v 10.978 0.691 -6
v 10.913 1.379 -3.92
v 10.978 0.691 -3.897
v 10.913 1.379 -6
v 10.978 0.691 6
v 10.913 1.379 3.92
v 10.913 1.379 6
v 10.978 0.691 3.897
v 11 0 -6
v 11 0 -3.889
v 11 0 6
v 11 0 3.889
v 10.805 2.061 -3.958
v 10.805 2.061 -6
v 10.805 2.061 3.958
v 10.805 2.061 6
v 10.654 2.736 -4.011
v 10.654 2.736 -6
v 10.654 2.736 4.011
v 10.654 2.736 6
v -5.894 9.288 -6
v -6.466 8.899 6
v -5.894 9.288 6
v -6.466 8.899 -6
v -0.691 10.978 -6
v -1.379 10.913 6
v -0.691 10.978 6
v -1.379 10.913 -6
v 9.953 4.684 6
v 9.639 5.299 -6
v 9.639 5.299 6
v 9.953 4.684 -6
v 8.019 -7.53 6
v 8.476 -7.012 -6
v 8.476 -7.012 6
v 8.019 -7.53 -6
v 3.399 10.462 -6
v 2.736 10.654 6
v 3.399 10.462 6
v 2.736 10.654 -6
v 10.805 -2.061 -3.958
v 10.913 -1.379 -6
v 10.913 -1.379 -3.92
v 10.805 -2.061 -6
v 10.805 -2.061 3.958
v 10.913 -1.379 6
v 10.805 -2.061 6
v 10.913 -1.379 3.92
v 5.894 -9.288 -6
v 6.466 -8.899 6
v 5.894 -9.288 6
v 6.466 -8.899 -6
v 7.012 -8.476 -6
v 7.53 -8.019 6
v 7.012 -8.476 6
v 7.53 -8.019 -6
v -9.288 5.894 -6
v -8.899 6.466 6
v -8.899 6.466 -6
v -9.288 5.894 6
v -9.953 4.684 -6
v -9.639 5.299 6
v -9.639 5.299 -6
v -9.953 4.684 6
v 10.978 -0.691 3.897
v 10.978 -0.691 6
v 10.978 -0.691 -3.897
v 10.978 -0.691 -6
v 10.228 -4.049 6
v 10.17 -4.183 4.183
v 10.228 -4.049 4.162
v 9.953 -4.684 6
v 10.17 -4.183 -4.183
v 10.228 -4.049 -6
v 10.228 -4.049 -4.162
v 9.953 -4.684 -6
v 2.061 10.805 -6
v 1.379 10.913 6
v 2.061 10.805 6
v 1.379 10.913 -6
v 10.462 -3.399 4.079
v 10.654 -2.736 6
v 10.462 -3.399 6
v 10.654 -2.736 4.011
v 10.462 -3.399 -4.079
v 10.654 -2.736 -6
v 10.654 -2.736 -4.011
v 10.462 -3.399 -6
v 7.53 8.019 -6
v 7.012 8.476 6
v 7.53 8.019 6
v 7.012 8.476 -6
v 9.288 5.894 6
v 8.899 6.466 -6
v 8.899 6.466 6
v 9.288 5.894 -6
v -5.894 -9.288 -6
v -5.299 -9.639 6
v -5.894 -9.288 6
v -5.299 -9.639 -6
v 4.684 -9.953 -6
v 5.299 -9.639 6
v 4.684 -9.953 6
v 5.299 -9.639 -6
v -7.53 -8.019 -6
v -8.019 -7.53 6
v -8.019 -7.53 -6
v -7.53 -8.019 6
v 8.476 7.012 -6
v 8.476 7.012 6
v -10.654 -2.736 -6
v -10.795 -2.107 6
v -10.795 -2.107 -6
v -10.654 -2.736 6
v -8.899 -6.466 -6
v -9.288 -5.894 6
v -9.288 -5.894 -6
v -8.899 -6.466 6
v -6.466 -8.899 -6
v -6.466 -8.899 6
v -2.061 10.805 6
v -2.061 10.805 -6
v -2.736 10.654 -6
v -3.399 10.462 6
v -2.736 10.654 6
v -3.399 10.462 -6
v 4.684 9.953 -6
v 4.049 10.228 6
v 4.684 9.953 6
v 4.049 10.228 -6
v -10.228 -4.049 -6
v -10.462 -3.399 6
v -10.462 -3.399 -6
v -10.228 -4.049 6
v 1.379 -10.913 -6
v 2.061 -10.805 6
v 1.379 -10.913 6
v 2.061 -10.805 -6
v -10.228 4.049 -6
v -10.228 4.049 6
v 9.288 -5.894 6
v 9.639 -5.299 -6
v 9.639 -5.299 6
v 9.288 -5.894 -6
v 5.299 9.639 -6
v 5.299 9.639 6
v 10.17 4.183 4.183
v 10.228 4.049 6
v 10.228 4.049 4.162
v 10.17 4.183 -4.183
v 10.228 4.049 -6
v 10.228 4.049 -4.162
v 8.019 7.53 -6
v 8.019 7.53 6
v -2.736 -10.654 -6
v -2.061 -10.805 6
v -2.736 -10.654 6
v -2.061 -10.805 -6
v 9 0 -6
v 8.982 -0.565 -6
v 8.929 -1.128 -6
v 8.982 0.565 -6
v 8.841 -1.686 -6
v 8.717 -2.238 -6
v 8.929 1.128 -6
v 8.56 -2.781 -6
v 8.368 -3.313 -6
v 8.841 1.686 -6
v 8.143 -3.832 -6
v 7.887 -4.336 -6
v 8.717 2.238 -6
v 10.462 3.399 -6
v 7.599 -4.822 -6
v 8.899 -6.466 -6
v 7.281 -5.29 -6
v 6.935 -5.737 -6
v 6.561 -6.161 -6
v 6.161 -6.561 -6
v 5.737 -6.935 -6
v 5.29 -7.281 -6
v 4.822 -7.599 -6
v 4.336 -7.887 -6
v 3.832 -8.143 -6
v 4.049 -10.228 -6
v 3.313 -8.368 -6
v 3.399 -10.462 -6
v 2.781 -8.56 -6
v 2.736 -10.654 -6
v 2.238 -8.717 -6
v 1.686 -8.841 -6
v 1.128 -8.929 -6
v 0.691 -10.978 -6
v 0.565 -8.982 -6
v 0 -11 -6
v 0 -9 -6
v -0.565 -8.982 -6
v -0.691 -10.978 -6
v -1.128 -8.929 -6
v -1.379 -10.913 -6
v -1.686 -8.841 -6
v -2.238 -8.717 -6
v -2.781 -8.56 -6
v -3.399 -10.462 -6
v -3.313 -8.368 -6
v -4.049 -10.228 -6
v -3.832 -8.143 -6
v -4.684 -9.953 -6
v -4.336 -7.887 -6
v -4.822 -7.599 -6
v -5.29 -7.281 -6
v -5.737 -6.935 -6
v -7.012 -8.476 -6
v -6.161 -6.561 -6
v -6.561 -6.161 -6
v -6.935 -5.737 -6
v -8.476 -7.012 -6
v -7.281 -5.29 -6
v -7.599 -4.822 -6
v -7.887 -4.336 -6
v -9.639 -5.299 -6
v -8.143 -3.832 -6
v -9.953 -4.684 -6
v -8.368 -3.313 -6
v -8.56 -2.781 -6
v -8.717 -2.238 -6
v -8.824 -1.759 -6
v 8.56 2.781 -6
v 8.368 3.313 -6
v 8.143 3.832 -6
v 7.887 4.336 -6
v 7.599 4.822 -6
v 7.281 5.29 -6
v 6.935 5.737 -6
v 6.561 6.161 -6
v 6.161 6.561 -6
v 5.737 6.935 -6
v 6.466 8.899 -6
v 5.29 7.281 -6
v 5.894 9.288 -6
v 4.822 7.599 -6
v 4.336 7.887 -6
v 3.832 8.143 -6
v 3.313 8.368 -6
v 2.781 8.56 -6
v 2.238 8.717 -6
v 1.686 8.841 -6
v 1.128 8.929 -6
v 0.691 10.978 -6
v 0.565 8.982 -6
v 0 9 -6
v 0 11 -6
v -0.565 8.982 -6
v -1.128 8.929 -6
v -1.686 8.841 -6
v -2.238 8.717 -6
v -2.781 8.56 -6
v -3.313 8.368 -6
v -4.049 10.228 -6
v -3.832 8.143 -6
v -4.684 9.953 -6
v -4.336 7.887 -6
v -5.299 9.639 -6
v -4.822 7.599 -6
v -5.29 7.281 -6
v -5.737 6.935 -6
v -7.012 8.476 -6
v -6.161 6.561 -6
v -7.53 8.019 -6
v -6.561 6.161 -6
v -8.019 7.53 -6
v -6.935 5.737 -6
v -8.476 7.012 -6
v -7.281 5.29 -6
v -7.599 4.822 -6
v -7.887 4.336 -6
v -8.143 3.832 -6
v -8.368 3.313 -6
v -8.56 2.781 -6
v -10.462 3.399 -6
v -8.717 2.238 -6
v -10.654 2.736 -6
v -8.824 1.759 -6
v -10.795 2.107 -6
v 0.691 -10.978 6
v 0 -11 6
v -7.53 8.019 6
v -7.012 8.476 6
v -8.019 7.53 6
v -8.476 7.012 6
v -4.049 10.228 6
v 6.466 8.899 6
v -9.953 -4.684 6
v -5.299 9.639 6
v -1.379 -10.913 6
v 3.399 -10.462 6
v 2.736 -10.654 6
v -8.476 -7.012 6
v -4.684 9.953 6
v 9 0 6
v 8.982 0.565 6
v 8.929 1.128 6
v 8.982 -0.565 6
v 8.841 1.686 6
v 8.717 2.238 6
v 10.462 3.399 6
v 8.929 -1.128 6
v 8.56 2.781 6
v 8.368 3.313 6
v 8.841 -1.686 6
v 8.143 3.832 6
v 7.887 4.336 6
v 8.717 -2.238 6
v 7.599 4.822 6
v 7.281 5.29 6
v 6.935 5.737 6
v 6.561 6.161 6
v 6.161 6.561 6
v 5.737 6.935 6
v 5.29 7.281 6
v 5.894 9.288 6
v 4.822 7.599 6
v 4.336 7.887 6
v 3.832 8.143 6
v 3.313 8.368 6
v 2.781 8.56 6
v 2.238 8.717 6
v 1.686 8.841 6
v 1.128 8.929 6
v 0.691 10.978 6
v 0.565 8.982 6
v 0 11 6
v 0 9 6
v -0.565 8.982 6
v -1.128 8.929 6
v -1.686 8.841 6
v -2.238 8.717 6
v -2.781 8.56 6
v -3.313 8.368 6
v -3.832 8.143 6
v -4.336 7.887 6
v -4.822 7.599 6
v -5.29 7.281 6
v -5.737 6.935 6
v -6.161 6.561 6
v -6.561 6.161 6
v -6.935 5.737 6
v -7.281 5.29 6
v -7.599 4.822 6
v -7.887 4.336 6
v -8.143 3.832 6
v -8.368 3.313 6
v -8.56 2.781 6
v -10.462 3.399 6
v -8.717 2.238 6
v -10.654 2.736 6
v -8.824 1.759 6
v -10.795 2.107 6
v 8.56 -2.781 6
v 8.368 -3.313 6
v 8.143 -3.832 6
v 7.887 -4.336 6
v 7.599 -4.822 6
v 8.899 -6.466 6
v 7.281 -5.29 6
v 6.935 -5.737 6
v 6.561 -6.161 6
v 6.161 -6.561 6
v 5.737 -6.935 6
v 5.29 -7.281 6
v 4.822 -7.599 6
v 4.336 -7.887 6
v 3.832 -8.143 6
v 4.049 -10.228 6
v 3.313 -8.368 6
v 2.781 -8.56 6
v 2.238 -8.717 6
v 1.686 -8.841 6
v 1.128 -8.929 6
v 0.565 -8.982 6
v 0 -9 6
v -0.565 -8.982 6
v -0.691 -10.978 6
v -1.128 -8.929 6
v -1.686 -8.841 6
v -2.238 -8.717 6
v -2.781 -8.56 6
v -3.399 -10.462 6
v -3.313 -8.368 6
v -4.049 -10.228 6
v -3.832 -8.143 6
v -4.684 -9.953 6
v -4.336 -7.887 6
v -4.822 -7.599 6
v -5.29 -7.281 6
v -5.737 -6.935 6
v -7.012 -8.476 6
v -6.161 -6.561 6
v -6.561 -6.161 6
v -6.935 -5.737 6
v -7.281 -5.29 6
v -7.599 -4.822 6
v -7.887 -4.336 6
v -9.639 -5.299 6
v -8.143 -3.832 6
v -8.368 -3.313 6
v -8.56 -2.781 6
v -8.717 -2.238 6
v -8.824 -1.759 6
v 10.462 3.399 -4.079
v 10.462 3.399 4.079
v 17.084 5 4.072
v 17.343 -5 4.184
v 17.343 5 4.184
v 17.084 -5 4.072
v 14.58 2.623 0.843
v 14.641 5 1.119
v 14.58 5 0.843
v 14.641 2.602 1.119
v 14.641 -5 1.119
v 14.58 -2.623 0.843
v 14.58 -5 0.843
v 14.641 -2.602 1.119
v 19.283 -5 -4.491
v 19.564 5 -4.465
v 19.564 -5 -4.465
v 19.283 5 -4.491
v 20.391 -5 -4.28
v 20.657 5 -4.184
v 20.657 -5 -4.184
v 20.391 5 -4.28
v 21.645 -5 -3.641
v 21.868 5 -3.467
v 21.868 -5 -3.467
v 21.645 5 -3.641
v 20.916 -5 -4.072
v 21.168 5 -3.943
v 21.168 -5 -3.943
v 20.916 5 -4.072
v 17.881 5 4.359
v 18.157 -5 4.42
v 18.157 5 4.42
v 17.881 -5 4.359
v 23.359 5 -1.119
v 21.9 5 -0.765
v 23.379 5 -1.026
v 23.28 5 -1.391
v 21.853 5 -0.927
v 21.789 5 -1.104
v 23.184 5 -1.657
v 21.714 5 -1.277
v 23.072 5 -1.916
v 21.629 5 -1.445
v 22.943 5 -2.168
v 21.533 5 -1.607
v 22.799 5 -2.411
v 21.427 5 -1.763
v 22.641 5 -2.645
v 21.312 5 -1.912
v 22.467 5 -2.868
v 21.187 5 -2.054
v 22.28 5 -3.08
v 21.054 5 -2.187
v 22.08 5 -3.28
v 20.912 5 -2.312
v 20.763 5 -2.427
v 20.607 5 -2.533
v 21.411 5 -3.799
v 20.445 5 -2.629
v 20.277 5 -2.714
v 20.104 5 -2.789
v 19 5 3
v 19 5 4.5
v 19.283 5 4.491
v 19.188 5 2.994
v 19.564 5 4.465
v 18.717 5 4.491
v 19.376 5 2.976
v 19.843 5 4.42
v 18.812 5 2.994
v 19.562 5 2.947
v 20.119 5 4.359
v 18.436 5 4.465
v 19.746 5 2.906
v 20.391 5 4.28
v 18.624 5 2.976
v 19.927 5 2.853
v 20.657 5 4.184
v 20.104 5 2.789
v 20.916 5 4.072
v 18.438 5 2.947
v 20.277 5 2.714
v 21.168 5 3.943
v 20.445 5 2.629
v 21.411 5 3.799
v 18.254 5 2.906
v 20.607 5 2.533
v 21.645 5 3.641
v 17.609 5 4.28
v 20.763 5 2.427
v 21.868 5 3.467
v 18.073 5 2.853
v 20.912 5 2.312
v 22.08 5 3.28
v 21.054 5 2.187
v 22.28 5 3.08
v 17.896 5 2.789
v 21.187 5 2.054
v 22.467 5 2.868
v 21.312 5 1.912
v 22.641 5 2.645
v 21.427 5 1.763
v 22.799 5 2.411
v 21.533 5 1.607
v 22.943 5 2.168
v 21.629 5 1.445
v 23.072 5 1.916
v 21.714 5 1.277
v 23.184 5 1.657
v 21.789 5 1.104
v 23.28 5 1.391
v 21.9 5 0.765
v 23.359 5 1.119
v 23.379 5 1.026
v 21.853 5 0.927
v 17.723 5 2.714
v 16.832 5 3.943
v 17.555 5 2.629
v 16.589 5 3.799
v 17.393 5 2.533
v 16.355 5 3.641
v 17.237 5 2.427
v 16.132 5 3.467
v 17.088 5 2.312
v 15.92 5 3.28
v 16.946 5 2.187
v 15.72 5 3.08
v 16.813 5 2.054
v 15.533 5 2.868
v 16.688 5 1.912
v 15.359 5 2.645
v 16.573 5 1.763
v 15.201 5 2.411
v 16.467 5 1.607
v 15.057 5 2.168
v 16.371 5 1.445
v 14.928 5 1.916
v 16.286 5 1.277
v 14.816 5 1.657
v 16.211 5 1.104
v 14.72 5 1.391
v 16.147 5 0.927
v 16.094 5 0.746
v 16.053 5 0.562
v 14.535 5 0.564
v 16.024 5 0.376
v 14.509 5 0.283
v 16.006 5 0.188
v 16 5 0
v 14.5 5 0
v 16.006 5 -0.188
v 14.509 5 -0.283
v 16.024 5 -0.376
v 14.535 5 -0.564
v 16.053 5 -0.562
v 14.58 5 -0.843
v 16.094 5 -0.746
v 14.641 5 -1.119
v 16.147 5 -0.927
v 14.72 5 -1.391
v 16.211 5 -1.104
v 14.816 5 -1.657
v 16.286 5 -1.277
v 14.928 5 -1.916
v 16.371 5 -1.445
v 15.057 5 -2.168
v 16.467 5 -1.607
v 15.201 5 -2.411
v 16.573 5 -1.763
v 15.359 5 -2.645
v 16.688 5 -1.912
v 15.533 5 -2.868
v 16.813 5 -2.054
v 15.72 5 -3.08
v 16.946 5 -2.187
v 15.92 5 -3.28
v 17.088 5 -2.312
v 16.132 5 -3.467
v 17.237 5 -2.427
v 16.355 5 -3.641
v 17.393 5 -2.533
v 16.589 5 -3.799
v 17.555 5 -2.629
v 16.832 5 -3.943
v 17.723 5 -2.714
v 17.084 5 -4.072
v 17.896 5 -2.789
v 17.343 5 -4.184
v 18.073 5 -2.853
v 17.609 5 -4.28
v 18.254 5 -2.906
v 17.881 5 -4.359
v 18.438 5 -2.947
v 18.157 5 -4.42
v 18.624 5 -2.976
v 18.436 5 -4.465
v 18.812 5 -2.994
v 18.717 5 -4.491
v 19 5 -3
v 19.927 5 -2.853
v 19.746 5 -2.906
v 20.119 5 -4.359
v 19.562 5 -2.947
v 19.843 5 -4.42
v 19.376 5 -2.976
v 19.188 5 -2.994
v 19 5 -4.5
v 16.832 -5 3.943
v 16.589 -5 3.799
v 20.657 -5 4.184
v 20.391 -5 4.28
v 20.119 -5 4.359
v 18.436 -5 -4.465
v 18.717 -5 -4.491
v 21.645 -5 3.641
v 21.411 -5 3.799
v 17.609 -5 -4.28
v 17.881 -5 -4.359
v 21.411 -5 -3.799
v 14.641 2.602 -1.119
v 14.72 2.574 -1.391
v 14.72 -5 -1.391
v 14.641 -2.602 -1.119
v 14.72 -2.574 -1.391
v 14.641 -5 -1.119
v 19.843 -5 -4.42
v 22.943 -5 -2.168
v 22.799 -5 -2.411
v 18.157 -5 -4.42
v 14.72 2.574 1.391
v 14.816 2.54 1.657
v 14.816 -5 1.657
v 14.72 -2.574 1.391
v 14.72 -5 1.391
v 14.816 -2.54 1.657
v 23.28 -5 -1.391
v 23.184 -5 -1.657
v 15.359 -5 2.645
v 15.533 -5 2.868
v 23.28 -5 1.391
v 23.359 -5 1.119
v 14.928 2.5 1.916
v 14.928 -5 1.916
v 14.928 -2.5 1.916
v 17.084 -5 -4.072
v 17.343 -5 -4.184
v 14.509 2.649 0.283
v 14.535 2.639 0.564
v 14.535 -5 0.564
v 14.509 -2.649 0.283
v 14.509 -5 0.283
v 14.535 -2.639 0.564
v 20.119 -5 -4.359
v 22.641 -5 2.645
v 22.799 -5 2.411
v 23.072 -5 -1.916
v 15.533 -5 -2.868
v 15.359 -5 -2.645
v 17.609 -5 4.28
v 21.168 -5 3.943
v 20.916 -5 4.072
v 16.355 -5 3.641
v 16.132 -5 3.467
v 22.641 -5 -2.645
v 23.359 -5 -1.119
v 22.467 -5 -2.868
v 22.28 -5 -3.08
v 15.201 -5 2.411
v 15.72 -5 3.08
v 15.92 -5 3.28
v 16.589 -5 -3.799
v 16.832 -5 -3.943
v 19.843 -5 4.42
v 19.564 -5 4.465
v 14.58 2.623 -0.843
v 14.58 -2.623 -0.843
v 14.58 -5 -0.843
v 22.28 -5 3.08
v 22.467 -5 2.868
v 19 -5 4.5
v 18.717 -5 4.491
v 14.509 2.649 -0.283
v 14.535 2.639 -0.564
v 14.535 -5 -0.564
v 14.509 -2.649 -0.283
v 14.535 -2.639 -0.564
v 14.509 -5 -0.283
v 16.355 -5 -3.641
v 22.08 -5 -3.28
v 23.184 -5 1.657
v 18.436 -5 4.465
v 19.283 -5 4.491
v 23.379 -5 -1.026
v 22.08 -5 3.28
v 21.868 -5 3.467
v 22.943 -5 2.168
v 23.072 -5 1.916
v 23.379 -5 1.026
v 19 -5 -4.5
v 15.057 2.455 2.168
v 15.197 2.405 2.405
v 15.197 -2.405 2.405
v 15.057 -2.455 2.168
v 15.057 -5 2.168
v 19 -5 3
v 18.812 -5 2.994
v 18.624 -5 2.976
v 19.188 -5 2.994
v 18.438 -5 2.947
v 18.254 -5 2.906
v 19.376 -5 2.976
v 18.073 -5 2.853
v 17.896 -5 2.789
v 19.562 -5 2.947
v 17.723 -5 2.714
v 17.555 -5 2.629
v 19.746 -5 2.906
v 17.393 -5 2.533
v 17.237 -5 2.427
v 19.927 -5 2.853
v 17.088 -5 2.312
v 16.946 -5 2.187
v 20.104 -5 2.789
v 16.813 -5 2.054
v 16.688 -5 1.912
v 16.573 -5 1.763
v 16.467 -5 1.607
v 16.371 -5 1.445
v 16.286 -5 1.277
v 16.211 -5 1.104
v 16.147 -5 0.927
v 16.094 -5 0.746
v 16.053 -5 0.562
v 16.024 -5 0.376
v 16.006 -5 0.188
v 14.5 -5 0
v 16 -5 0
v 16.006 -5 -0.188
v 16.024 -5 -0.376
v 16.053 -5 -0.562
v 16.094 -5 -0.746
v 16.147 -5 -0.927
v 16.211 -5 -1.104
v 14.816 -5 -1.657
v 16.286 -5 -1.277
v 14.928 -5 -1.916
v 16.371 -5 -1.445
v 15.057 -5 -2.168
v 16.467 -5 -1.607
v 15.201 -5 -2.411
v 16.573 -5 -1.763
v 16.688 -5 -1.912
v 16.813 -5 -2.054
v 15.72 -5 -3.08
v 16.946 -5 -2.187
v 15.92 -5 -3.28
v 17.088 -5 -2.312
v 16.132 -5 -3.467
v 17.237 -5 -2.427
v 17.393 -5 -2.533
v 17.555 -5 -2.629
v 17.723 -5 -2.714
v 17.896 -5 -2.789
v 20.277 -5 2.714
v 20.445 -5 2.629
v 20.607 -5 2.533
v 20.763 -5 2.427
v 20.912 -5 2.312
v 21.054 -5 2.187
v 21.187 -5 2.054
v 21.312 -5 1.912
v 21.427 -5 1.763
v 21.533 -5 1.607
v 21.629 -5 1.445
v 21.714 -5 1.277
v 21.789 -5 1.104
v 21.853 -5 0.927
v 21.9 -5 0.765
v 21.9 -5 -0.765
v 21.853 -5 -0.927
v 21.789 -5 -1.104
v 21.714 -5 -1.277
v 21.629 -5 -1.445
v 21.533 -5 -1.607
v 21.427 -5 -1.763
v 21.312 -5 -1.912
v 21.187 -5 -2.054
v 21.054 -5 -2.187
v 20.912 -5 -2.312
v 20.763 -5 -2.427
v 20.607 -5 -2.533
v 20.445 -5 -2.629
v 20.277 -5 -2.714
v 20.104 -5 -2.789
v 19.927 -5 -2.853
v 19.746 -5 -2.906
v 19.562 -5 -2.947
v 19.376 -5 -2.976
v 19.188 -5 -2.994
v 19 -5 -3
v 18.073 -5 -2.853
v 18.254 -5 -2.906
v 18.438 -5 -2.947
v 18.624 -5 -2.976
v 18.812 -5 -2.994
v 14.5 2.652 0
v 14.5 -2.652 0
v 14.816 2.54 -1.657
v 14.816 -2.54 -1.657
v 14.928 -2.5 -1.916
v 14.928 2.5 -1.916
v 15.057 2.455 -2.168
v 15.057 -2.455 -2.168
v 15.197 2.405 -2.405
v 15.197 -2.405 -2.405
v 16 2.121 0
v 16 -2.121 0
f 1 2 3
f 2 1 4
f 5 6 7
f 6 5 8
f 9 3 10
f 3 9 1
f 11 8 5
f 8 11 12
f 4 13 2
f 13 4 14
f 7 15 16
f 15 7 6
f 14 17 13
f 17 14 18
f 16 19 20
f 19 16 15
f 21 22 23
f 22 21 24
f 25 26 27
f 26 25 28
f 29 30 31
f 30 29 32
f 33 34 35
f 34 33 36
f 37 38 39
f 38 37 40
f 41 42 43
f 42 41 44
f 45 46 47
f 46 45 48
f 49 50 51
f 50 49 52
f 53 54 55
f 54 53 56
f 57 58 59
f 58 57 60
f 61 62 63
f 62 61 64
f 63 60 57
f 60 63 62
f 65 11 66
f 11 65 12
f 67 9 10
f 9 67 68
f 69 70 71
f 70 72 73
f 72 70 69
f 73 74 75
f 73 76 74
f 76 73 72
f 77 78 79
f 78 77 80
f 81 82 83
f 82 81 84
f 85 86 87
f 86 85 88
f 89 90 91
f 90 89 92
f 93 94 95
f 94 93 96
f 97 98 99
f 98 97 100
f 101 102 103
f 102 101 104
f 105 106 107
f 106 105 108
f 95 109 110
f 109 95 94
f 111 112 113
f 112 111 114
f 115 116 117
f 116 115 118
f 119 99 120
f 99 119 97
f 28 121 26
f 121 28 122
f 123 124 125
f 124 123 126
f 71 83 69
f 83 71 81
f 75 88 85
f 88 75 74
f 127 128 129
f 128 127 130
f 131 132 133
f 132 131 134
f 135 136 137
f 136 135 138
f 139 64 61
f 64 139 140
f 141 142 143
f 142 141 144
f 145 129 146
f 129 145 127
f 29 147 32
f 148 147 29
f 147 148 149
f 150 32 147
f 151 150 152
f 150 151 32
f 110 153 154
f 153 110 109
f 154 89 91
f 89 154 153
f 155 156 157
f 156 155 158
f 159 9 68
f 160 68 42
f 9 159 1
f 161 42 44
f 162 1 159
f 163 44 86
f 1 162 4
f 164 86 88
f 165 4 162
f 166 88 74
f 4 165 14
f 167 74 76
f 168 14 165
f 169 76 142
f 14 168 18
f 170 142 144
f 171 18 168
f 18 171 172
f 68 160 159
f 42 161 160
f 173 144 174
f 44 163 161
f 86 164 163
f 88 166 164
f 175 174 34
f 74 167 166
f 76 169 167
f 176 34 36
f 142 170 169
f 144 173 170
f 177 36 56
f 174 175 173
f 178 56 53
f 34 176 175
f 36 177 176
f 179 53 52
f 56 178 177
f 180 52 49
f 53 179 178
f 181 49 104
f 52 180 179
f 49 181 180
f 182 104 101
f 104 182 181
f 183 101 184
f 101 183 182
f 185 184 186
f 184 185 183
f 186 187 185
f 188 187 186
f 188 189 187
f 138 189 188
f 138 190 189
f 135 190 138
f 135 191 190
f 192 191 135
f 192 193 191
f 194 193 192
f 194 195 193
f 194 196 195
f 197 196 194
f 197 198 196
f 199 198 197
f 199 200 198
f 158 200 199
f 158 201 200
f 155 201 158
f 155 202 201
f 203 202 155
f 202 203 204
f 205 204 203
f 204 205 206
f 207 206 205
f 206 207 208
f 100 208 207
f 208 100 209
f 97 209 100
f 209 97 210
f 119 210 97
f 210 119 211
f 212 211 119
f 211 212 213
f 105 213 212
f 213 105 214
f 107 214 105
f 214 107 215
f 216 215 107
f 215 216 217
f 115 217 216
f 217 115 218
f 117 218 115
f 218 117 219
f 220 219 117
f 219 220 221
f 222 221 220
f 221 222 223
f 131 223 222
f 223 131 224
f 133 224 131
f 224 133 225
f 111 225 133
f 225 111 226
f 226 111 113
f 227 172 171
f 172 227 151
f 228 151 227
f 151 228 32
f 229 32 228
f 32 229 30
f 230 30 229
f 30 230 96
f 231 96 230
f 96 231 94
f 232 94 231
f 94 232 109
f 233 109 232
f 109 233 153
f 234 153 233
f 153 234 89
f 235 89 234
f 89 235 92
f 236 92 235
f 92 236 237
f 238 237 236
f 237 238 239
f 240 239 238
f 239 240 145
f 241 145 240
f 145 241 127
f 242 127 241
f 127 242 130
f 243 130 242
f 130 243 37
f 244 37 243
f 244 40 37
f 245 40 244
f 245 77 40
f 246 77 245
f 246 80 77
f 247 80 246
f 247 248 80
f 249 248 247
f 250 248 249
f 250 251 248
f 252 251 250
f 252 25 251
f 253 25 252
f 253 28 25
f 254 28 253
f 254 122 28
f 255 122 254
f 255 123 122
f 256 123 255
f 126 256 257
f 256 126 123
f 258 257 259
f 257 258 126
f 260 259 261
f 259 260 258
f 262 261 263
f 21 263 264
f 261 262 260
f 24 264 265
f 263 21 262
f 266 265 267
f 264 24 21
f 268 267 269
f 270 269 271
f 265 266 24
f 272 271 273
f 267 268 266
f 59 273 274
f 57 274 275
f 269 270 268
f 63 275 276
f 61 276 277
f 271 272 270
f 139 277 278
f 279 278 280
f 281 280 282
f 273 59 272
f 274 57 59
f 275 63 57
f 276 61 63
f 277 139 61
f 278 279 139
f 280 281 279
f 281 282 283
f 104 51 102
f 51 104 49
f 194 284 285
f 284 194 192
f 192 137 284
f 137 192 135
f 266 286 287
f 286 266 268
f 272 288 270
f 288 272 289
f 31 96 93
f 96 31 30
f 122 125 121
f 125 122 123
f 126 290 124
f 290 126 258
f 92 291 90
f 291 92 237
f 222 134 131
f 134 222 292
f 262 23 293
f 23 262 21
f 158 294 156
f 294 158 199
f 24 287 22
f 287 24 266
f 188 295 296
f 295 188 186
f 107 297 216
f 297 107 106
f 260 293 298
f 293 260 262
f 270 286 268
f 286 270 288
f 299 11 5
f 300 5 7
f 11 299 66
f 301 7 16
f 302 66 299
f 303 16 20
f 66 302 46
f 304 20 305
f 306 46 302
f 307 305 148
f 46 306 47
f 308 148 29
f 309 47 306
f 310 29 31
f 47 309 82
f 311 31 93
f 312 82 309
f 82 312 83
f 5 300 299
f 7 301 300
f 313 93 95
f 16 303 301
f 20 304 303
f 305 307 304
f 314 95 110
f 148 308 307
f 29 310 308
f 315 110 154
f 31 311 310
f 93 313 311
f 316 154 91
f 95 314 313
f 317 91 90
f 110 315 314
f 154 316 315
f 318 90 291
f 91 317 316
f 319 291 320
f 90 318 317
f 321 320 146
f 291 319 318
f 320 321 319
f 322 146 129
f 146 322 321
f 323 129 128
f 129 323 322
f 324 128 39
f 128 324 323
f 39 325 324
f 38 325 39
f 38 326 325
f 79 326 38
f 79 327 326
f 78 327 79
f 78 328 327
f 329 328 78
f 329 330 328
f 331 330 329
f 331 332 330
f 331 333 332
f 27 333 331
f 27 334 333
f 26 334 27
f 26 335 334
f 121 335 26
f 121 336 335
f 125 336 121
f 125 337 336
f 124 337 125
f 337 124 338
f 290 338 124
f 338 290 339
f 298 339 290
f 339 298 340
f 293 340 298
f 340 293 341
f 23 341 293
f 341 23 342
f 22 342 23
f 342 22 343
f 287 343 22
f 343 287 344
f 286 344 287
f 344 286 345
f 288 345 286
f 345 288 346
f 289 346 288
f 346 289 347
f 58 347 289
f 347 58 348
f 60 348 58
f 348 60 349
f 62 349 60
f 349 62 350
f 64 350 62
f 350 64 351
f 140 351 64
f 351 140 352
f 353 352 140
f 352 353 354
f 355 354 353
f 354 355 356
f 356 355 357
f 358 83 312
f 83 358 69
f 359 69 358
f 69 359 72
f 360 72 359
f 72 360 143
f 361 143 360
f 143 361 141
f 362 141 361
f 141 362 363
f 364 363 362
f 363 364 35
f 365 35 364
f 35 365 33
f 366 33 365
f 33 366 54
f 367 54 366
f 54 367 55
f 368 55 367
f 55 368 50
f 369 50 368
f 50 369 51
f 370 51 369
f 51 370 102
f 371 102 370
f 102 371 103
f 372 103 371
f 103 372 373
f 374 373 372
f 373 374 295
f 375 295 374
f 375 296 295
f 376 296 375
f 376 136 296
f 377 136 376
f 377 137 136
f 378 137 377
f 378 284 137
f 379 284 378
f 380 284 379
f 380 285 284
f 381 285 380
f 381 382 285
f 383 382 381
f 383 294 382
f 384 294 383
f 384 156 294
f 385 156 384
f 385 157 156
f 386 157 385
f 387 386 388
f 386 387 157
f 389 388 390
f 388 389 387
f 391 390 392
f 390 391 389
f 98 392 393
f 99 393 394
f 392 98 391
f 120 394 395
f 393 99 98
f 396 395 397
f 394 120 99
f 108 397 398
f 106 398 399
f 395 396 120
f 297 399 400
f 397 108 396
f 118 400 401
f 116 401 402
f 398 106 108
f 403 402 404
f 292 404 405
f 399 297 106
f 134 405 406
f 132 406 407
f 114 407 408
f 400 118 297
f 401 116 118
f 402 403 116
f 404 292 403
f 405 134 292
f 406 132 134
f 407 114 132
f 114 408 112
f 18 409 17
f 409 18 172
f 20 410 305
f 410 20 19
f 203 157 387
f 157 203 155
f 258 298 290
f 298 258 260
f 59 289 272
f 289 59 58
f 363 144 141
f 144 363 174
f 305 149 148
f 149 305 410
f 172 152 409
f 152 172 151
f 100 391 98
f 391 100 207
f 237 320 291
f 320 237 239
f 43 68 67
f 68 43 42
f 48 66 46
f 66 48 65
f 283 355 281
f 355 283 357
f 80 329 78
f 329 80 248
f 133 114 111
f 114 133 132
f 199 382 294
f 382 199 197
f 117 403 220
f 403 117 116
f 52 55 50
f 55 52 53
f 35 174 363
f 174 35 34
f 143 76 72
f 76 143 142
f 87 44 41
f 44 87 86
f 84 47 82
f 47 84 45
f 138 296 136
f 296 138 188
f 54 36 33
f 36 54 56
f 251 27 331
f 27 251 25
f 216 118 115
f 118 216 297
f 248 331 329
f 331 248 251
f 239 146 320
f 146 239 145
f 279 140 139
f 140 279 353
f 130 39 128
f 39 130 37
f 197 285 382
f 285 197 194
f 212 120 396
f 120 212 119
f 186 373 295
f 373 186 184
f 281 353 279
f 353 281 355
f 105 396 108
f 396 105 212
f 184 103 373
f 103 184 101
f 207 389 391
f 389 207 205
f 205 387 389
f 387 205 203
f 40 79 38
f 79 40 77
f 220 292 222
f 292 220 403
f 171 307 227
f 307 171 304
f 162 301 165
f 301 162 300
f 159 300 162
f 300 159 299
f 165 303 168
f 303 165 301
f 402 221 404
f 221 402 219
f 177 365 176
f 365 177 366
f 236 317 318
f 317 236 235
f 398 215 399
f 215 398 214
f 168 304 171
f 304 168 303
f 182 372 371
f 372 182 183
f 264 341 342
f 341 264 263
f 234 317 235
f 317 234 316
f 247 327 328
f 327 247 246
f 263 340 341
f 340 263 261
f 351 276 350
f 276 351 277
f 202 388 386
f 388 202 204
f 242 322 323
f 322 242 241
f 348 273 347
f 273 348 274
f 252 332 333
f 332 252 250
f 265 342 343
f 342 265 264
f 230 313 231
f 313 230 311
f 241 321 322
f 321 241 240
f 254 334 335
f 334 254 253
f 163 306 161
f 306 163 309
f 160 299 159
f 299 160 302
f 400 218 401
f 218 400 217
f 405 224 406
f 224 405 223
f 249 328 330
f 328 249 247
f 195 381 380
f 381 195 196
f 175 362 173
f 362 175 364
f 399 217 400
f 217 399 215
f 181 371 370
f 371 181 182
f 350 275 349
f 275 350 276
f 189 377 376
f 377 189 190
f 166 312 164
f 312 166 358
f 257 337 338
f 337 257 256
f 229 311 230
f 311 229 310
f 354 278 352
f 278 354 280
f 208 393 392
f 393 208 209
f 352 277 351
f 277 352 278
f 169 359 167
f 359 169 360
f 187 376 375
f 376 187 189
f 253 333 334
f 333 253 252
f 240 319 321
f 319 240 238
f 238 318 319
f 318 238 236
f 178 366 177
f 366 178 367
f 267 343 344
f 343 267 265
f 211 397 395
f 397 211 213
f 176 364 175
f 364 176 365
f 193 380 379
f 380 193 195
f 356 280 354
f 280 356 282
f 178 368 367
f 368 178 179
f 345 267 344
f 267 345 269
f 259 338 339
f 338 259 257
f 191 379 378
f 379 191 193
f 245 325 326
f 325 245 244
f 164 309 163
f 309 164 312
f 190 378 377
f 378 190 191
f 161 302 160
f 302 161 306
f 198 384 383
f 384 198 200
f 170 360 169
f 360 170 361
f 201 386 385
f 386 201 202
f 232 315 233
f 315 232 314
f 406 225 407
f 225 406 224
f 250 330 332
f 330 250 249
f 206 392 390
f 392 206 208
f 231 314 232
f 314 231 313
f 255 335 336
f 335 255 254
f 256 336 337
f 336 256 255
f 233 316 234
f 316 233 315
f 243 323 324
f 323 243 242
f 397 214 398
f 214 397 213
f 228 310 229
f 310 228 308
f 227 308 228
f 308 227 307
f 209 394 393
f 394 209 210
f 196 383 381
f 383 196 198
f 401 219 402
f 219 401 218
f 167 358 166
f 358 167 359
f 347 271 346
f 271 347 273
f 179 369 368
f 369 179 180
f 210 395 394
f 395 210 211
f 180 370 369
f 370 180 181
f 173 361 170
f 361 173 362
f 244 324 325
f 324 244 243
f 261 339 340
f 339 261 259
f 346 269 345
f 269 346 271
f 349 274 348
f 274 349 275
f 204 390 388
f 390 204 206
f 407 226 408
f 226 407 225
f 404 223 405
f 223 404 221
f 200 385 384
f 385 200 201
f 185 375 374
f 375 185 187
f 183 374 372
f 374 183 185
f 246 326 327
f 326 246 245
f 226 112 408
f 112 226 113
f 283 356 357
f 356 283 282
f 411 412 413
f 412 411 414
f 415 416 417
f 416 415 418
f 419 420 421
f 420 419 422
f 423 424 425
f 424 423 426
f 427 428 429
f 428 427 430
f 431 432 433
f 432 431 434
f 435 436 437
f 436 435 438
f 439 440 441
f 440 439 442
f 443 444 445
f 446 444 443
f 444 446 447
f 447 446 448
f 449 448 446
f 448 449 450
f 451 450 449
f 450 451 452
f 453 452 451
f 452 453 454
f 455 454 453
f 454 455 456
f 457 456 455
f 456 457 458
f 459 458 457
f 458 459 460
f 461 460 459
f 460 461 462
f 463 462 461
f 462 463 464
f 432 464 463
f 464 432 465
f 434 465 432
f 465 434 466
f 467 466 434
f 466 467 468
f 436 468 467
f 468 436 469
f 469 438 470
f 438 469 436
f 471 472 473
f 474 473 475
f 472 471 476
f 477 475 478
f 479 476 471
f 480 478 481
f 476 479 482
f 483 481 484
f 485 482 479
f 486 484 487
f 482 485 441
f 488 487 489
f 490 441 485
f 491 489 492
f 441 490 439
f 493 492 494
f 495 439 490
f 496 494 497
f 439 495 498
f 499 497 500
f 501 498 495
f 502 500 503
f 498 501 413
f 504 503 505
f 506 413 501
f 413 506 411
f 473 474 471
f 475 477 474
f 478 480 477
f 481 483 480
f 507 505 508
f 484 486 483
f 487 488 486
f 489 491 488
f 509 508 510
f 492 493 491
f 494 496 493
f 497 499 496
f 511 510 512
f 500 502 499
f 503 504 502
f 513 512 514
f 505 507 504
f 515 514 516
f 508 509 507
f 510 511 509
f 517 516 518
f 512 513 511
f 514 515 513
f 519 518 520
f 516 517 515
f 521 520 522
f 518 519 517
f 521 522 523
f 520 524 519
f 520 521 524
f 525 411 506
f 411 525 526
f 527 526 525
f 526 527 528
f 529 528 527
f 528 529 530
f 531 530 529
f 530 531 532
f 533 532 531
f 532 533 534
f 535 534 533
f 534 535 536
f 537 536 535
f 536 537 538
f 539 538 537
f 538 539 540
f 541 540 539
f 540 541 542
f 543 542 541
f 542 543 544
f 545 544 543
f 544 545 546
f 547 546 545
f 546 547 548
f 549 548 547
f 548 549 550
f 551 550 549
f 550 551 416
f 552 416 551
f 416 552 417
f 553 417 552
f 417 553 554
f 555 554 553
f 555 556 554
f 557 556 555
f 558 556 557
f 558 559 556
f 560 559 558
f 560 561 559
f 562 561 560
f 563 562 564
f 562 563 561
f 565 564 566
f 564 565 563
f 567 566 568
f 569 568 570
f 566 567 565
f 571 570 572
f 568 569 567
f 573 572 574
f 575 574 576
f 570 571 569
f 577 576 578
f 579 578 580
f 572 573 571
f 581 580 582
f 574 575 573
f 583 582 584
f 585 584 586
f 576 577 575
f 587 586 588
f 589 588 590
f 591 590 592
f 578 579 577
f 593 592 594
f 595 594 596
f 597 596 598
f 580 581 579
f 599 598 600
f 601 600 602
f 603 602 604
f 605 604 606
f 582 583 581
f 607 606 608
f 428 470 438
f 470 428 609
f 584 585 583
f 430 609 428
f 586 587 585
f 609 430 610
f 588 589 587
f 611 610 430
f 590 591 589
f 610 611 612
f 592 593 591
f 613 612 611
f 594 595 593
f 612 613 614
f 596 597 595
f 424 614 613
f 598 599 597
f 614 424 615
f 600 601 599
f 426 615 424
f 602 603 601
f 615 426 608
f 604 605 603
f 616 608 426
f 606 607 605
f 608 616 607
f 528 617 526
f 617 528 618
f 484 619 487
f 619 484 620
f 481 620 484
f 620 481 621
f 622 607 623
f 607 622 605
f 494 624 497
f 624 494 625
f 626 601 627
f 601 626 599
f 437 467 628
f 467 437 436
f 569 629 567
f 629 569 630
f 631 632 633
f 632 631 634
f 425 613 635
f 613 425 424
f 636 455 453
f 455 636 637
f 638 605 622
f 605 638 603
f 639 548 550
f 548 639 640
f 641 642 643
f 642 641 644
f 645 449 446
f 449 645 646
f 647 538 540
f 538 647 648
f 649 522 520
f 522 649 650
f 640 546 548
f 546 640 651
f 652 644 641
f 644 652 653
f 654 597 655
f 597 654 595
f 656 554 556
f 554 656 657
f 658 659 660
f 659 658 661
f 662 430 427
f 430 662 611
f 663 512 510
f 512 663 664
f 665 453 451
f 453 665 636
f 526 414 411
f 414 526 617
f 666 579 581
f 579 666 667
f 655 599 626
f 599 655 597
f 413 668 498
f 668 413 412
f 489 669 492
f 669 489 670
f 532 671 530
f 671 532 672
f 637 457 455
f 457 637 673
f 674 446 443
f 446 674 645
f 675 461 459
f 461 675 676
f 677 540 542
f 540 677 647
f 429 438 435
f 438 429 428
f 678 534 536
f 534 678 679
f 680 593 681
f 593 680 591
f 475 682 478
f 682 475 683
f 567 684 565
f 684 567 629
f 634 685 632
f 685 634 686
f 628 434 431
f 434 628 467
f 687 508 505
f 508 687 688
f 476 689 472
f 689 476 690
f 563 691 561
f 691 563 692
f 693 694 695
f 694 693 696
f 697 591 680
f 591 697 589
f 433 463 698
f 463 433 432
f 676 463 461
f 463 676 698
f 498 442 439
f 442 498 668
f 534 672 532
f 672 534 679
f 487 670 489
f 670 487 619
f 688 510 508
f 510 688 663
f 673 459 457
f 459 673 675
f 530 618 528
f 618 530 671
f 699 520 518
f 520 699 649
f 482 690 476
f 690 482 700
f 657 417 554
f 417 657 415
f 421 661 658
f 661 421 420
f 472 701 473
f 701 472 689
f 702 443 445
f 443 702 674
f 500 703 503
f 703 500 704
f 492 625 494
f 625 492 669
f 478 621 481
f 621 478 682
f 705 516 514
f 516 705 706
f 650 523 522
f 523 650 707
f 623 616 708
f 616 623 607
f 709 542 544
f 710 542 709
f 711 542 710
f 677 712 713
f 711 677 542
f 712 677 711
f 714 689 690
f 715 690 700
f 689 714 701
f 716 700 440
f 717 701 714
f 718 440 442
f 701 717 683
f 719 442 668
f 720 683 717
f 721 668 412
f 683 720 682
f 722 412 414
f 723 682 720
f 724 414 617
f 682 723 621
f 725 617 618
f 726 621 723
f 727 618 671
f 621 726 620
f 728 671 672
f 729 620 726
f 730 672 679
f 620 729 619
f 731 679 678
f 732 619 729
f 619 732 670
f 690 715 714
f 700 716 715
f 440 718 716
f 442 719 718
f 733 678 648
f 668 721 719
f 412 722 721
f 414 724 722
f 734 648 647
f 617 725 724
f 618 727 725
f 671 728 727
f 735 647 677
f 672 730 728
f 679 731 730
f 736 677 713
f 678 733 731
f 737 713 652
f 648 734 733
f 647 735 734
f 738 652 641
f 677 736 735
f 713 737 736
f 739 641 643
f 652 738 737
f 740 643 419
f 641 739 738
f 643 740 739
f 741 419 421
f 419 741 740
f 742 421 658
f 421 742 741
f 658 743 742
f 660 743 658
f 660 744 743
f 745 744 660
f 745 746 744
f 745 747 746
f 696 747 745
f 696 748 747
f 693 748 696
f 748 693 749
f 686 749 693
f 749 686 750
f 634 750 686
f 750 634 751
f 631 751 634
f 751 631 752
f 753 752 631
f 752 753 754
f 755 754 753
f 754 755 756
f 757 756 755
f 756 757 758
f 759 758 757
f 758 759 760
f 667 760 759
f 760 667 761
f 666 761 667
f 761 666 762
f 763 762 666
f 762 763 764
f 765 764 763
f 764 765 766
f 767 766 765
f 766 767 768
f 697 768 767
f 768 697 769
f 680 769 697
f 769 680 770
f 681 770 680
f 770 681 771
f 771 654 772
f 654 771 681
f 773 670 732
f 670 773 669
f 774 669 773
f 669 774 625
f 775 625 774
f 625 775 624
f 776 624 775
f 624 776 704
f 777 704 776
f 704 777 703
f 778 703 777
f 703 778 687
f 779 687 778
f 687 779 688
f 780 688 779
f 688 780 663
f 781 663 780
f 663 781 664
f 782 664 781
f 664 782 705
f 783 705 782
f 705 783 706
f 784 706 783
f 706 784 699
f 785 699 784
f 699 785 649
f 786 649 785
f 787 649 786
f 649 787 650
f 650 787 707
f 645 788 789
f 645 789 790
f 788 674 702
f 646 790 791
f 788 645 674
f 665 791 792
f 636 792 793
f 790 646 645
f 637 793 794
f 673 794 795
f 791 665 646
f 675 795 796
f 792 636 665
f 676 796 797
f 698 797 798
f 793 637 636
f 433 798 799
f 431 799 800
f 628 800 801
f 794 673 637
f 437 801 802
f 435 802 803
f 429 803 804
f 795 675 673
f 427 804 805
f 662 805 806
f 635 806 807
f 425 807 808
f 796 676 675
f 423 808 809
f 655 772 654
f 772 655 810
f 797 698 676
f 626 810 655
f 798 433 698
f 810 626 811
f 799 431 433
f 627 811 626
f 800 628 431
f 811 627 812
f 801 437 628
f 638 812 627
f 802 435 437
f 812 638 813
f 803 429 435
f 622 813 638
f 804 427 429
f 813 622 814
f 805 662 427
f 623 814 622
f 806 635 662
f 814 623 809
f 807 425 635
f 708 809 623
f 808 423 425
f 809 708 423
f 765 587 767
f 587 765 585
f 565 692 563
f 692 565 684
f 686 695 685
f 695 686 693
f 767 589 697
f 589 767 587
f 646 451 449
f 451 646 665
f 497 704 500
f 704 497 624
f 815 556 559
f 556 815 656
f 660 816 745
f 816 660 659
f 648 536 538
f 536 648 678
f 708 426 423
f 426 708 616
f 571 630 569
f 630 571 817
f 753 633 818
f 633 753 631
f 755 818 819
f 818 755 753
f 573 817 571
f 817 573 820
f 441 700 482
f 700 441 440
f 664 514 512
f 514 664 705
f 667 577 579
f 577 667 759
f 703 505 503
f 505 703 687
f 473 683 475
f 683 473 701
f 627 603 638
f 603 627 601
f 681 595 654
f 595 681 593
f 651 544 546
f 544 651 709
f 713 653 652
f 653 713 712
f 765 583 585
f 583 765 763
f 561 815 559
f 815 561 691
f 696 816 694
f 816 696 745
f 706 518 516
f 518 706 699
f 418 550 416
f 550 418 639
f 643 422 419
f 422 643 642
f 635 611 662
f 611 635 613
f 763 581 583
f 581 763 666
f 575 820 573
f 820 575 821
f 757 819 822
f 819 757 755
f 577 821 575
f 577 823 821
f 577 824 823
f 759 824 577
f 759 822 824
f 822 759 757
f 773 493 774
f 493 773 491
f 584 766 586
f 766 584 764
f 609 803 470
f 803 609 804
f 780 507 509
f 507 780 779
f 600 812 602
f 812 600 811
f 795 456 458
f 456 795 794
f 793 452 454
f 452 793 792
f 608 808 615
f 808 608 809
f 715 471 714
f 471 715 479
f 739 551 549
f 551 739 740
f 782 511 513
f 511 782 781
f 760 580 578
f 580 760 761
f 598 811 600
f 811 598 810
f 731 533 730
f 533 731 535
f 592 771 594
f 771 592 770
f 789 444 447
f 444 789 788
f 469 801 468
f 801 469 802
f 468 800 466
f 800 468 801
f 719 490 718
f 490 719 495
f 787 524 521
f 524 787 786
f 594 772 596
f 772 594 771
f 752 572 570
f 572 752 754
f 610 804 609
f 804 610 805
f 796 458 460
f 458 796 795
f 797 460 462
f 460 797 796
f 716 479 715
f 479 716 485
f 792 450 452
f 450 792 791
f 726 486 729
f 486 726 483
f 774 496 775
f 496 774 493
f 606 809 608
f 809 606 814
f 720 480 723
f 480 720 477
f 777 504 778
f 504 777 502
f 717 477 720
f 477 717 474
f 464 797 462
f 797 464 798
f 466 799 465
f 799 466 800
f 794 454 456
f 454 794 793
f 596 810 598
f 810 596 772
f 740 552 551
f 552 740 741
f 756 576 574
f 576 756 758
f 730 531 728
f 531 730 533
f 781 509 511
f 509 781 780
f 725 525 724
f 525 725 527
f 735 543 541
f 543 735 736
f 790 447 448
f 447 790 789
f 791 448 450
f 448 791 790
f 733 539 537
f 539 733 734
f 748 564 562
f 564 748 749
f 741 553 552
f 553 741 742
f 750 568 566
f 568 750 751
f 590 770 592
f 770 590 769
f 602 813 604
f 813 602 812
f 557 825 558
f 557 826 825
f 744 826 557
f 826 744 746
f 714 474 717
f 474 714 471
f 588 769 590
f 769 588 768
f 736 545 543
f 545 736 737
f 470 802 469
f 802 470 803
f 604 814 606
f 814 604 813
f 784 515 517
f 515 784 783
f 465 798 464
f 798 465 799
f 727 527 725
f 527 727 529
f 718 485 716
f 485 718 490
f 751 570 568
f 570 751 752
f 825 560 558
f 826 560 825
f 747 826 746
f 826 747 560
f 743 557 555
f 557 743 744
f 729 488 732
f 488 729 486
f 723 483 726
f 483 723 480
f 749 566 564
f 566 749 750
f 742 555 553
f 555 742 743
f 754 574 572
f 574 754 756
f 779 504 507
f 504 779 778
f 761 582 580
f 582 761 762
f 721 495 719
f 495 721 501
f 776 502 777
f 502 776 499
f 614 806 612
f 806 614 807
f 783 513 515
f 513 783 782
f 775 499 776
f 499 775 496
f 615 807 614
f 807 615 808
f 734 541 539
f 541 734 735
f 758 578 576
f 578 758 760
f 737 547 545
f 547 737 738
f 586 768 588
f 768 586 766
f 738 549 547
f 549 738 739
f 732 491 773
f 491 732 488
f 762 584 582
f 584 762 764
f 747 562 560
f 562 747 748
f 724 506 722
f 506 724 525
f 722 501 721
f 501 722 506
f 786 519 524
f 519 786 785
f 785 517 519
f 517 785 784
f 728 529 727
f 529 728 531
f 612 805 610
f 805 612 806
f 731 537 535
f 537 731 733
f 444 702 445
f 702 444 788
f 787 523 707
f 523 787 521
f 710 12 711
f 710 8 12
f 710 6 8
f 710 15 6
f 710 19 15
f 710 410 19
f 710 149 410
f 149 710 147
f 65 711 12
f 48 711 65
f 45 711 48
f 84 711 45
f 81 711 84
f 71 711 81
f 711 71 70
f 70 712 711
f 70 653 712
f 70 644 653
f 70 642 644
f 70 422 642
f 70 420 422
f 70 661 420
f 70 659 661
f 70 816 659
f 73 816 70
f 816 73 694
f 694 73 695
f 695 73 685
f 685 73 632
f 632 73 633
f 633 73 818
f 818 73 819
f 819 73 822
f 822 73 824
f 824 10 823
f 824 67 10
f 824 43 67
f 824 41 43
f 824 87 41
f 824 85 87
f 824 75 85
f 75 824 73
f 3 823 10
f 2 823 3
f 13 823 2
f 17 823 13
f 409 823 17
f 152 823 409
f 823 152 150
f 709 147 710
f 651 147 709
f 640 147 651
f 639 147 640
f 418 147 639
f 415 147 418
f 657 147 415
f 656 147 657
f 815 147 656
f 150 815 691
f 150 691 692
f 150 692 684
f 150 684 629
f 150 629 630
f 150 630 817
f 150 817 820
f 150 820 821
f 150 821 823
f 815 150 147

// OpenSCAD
// $fn=100;


// difference() {
//     cylinder(d=20, h=10, center=true);
//     cylinder(d=16, h=10, center=true);
// }

// translate([17, 0, 0])
// difference() {
//     cylinder(d=11, h=10, center=true);
//     cylinder(d=7, h=10, center=true);

//     rotate([0, 0, 10])
//     translate([5,-0.5,0])
//     cube(size=[5, 1.5, 10], center=true);
//     rotate([0, 0, -10])
//     translate([5,0.5,0])
//     cube(size=[5, 1.5, 10], center=true);
// }

// translate([10, 0, 0])
// cube(size=[4, 4, 10], center=true);


$fn=100;
height=12;
diameter=22;
difference() {
    cylinder(d=diameter, h=height, center=true);
    cylinder(d=diameter-4, h=height, center=true);

    rotate([0, 0, 10])
    translate([-10,1,0])
    #cube(size=[5, 2.4, height], center=true);
    rotate([0, 0, -10])
    translate([-10,-1,0])
    #cube(size=[5, 2.4, height], center=true);
}

rotate([-90,0,0])
translate([diameter-3, 0, 0])
difference() {
    cylinder(d=9, h=10, center=true);
    cylinder(d=6, h=10, center=true);

    rotate([0, 0, 10])
    translate([5,-0.5,0])
    cube(size=[5, 1.5, 10], center=true);
    rotate([0, 0, -10])
    translate([5,0.5,0])
    cube(size=[5, 1.5, 10], center=true);
}

rotate([45,0,0])
translate([diameter/2+height/6, 0, 0])
rotate([0,270,0])
cylinder(d1=height/2, d2=height, height/2, $fn = 4, center=true);
// cube(size=[7, 4, 10], center=true);
